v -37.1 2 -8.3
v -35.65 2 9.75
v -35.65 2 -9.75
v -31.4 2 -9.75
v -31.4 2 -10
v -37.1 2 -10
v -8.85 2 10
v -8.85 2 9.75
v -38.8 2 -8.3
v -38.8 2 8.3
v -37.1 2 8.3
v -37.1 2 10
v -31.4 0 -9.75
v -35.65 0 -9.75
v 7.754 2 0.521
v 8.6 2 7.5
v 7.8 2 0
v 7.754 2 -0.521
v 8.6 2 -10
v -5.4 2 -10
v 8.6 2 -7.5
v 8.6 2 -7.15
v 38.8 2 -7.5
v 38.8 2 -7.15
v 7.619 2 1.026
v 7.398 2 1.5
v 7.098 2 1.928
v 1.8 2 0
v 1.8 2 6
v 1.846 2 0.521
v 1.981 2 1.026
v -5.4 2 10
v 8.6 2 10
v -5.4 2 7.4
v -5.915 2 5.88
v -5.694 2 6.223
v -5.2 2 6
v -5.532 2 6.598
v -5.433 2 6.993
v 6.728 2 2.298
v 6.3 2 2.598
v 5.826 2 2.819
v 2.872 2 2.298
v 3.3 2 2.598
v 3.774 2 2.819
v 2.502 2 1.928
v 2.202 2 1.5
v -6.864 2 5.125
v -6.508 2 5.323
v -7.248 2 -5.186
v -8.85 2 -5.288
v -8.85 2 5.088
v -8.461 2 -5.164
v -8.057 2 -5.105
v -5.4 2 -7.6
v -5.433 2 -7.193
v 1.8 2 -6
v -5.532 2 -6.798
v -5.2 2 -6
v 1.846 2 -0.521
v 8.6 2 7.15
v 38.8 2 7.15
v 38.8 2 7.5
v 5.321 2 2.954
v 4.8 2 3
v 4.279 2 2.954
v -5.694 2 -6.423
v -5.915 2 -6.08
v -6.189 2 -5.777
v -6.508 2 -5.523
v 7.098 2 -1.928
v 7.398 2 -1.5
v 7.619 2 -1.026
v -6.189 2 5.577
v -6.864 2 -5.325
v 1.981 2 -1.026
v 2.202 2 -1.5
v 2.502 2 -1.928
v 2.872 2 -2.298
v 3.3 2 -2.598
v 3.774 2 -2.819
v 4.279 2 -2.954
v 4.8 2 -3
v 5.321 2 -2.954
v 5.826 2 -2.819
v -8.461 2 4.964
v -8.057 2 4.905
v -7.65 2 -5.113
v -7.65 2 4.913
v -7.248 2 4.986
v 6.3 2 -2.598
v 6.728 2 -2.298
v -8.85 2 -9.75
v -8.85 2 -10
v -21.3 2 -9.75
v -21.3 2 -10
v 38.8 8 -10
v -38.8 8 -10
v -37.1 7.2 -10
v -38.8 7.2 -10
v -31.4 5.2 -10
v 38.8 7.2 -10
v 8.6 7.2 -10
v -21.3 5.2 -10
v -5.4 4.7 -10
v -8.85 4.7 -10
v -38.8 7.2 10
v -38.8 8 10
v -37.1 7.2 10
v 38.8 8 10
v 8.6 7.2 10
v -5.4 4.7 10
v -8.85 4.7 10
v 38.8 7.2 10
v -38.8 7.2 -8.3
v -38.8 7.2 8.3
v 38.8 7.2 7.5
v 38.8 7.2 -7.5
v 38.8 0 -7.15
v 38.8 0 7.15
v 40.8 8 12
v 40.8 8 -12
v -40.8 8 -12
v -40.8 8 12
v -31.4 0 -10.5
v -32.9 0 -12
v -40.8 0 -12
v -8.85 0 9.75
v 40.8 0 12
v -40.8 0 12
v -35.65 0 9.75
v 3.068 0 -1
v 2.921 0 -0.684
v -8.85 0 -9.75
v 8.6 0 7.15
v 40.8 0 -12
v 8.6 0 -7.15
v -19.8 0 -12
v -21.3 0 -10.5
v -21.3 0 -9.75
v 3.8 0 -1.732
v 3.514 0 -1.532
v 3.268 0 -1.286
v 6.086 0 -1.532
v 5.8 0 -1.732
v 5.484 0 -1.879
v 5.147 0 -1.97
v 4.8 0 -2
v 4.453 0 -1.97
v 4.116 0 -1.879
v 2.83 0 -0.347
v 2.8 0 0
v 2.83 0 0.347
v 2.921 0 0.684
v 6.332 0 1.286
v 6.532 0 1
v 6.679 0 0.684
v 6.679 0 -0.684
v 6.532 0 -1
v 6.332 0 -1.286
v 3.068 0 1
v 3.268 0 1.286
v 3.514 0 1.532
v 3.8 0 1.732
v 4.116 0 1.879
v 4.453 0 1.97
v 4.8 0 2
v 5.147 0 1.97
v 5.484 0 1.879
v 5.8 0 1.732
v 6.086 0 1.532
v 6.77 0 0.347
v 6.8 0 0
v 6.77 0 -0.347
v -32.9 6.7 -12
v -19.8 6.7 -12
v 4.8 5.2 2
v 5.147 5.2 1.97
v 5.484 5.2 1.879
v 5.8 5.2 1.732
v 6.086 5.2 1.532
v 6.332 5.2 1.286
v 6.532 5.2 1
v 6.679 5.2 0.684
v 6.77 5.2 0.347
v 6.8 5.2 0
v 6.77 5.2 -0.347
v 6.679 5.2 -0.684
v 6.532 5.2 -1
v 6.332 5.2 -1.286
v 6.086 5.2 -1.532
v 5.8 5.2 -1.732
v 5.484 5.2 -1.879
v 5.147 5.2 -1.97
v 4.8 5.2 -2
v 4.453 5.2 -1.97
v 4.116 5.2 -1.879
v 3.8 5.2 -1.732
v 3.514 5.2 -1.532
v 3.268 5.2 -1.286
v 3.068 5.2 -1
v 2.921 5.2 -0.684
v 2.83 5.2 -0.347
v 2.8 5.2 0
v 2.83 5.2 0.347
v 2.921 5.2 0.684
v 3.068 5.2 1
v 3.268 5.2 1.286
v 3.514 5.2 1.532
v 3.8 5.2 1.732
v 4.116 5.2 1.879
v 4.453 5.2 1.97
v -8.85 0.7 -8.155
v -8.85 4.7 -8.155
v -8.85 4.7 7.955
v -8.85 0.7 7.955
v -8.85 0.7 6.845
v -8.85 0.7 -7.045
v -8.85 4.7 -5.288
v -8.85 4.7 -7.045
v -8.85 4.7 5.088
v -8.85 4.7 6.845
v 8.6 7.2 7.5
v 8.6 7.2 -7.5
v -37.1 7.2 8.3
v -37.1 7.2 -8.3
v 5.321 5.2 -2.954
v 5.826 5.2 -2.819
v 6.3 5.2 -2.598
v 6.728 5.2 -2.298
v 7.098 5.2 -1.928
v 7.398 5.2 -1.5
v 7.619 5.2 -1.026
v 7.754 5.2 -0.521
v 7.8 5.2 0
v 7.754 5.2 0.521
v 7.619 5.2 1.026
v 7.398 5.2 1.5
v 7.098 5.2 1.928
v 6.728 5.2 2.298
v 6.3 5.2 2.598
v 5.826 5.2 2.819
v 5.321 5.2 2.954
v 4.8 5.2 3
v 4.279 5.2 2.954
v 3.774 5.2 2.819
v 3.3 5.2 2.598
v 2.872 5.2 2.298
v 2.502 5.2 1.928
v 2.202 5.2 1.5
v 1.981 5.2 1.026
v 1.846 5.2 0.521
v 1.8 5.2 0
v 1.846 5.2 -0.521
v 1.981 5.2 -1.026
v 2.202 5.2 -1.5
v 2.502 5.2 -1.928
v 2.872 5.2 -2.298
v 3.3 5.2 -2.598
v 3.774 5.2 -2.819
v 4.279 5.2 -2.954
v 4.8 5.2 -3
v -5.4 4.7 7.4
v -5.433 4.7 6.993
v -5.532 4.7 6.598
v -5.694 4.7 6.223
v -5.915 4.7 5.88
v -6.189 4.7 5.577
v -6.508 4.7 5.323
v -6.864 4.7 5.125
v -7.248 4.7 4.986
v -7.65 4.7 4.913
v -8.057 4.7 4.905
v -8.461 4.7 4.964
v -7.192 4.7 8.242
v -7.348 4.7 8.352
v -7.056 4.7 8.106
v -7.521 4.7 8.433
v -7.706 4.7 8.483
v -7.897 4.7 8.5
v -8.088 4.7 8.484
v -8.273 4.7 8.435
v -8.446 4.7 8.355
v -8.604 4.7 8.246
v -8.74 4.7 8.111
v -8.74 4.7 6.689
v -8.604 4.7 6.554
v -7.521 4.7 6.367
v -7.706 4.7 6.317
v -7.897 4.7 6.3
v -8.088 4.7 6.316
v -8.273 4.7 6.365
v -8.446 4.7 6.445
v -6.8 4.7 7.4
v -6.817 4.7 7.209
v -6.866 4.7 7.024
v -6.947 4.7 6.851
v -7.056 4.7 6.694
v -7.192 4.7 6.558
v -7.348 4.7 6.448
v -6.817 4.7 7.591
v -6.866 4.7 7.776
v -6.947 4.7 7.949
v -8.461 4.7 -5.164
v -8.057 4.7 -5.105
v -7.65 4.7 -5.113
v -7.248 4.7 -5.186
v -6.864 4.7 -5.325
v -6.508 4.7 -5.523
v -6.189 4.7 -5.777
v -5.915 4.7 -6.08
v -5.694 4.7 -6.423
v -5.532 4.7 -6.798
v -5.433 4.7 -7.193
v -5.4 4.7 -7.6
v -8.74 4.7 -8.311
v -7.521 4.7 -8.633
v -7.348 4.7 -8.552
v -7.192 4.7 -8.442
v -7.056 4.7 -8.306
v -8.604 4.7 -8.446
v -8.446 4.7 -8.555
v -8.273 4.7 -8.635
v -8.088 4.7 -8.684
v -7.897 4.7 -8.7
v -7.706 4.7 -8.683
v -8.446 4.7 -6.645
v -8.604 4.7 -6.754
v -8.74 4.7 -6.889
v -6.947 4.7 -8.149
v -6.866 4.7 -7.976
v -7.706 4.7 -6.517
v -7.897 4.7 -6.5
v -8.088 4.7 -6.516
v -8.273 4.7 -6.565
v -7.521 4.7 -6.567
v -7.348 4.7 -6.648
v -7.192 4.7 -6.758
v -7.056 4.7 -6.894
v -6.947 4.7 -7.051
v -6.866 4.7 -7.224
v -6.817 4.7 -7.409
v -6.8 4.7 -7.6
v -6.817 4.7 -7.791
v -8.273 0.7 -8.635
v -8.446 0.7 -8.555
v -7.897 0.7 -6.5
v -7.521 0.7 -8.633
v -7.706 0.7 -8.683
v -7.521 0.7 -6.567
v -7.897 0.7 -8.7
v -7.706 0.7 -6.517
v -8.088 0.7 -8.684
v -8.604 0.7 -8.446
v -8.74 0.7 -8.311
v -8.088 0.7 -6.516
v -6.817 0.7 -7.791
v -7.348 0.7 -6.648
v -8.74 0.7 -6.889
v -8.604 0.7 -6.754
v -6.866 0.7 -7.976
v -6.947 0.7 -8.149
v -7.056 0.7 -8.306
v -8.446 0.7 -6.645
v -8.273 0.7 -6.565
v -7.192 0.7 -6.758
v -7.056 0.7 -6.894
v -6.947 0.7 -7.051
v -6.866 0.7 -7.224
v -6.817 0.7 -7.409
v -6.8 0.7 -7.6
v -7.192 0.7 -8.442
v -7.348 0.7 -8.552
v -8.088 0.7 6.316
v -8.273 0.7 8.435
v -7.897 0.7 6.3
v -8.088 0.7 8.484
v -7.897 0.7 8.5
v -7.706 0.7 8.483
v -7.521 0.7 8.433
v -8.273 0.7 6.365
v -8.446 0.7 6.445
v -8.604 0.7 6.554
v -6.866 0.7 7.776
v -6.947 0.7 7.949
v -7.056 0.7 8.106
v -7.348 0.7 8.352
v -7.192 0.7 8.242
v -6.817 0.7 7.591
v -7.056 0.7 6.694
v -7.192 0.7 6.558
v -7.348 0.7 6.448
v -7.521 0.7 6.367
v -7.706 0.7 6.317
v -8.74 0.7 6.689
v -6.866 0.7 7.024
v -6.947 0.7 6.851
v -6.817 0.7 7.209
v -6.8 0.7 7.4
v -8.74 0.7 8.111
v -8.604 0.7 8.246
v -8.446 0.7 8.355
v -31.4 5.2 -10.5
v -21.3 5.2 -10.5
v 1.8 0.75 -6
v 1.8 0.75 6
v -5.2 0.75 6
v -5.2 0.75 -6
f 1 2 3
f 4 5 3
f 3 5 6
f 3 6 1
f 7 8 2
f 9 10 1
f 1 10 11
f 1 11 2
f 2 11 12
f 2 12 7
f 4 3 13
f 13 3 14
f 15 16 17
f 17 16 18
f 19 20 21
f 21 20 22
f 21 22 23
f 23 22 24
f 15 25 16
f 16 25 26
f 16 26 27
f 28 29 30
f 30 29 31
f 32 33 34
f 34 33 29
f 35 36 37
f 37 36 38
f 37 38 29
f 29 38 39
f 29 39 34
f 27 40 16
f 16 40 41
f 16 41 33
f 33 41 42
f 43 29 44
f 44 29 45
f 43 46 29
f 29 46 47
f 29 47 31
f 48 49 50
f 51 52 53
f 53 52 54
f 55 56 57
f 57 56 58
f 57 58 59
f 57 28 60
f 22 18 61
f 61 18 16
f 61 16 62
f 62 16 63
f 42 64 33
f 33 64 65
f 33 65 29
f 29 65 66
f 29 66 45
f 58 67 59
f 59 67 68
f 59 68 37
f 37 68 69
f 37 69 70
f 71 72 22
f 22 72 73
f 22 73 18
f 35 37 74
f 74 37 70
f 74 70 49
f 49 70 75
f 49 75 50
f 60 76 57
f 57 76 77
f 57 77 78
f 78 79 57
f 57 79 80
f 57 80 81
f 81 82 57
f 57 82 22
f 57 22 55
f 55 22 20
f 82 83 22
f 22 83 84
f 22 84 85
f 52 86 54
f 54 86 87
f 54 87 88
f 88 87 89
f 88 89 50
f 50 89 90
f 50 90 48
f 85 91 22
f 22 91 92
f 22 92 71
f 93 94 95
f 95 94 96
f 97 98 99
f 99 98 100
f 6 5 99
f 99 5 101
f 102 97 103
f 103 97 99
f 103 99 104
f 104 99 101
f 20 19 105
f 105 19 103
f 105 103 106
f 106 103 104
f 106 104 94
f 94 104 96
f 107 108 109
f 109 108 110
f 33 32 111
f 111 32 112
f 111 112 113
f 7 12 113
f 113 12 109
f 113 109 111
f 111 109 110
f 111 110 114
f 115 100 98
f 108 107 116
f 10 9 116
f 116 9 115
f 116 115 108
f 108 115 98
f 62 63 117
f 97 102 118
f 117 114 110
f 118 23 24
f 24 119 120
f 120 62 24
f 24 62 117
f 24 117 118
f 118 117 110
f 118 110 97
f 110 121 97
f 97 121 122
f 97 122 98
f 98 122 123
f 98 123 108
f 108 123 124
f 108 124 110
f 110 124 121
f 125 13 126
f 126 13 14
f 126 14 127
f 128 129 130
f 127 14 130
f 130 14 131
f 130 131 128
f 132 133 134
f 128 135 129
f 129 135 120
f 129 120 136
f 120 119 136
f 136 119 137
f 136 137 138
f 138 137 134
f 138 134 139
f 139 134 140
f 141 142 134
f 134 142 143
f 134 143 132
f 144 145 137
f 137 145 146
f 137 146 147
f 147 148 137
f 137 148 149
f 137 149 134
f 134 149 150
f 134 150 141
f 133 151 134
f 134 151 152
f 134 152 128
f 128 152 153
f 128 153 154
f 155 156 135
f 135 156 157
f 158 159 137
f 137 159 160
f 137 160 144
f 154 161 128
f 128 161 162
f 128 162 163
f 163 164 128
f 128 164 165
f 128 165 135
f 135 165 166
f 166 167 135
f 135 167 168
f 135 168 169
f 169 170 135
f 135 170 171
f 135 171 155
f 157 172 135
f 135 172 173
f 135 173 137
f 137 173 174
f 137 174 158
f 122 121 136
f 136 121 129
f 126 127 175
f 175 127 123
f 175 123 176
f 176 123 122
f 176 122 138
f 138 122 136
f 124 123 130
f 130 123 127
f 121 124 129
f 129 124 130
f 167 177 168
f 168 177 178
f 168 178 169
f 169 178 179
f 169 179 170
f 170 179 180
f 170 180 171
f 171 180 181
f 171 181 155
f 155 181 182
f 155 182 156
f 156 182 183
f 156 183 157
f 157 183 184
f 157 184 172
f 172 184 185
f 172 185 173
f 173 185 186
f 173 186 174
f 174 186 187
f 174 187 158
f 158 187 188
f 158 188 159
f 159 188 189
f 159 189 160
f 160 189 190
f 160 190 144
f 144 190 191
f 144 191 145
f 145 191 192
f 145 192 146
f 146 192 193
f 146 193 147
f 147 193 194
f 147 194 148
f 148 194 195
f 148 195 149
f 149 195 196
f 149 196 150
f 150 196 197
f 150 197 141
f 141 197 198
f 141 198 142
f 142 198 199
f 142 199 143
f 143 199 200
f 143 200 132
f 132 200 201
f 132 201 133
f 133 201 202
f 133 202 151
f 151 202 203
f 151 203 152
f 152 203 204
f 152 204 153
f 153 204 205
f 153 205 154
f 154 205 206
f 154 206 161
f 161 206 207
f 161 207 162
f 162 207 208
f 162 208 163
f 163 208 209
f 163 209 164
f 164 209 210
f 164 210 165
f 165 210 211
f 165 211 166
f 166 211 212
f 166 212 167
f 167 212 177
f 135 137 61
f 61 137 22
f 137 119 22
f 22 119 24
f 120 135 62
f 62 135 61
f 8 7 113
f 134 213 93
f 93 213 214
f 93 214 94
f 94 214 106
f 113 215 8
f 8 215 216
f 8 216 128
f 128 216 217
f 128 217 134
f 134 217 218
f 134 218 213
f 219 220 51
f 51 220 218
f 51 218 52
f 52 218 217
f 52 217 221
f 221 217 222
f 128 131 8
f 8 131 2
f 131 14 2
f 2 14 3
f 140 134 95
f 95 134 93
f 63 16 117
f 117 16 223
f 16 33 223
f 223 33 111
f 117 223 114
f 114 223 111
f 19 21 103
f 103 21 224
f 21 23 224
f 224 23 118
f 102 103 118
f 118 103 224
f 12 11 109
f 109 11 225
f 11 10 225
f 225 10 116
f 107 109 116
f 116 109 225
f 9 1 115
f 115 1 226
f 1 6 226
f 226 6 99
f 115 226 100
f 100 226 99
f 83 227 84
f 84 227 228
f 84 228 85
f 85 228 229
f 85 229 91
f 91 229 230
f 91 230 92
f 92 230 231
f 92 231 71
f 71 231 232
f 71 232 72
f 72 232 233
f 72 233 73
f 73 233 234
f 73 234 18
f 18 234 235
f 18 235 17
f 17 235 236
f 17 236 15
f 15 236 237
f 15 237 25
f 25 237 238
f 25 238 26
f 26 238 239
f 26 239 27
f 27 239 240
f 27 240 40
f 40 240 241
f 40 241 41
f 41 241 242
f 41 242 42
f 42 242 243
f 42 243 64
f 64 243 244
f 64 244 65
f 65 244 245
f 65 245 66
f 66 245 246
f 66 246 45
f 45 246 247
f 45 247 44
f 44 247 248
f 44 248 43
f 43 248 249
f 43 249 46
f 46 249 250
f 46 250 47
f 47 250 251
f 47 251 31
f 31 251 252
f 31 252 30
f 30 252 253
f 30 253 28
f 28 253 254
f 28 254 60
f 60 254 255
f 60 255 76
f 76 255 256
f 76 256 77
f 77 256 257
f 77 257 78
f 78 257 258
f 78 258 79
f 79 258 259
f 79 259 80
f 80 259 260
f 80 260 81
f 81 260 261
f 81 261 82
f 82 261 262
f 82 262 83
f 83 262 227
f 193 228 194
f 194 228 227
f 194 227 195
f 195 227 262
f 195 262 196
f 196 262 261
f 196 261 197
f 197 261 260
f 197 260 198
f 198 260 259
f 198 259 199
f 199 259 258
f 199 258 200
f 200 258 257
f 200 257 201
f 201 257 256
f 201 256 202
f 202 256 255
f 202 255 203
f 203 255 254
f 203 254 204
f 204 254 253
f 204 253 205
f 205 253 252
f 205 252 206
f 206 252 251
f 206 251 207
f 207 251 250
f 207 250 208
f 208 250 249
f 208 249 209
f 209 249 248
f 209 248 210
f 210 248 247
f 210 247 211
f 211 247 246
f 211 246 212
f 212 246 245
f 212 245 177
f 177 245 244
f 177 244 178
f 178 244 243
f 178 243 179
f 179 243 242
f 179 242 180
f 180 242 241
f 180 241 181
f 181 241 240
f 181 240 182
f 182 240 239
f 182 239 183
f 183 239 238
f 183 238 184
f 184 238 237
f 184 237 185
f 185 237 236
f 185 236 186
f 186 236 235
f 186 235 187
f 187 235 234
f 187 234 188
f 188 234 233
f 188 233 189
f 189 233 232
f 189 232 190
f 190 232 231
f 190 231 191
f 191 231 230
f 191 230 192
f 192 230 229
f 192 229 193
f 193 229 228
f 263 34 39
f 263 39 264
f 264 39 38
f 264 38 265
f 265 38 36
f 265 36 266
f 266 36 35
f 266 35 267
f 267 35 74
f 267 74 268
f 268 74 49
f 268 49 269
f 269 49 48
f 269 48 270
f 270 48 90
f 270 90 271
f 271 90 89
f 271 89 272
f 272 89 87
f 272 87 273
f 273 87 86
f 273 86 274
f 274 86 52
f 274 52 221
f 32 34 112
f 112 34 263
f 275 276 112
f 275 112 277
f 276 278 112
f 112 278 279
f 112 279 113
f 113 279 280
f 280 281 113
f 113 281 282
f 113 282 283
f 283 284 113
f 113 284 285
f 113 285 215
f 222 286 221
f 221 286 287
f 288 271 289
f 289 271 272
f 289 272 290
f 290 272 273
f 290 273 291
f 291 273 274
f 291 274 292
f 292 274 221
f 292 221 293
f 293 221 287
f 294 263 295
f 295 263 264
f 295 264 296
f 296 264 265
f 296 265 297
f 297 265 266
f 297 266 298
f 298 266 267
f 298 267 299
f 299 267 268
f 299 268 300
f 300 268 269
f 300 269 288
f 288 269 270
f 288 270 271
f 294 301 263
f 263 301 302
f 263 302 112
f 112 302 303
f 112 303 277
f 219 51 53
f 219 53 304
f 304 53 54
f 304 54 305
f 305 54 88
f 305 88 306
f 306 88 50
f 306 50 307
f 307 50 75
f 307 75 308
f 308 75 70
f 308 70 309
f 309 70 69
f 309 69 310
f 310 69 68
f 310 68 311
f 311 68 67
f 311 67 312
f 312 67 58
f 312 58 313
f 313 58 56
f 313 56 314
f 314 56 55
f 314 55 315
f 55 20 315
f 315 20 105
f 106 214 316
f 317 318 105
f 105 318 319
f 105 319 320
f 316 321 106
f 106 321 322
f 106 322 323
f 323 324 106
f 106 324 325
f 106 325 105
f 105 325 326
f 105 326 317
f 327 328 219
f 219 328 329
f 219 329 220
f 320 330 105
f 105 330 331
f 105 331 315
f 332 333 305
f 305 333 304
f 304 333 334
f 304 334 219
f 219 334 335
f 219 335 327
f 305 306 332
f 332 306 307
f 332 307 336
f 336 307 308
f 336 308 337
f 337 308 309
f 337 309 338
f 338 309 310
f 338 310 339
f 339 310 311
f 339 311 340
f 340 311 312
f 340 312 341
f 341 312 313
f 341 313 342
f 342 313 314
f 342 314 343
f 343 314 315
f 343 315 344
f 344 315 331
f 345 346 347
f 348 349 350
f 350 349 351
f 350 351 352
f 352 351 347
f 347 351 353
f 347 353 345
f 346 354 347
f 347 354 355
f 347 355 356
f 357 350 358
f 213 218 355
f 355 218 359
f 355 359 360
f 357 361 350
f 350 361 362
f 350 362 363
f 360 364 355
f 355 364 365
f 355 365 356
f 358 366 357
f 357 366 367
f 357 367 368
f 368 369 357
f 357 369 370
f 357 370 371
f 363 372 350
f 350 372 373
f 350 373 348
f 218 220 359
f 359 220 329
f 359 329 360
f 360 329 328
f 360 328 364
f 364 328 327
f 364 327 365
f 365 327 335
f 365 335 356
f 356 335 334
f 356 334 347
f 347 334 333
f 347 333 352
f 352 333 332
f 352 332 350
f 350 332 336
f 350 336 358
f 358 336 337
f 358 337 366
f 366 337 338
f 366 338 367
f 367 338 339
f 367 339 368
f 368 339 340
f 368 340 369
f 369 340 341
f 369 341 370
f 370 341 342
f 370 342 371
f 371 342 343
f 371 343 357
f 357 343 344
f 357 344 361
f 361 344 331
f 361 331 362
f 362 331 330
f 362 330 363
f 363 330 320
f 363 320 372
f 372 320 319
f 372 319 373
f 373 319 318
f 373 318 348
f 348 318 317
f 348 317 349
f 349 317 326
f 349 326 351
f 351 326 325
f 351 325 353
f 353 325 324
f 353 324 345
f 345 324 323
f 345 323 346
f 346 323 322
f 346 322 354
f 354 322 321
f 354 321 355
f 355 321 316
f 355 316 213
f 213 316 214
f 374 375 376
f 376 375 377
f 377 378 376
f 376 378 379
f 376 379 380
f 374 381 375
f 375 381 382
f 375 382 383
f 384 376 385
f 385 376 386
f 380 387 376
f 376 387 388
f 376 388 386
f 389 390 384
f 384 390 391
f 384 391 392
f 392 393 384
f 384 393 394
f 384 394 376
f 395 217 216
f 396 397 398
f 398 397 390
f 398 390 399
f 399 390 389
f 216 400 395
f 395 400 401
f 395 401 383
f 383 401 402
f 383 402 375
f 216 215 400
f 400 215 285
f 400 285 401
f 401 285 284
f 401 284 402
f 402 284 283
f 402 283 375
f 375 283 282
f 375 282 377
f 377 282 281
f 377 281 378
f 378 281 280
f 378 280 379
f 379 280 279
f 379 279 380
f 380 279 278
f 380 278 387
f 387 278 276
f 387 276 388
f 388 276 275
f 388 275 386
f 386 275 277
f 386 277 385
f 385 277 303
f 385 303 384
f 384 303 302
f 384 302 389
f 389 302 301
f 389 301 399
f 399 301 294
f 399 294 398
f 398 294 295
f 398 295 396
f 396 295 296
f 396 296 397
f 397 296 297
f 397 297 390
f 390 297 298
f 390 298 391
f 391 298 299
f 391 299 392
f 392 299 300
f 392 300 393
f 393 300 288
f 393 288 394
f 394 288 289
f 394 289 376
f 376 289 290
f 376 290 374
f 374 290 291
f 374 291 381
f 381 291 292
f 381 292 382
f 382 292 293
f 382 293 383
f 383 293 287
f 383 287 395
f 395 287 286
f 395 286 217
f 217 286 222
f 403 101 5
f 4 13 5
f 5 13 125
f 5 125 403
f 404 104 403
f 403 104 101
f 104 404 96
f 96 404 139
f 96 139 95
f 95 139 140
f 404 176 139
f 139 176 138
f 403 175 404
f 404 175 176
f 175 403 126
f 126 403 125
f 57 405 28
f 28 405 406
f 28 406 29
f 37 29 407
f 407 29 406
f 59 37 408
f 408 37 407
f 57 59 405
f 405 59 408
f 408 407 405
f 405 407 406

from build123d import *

# Parameters (mm, degrees)
SKETCH2_W           = 81.6
SKETCH2_H           = 24
SKETCH2_W_2         = 77.6
SKETCH2_H_2         = 20
BOSS_EXTRUDE1_DEPTH = 8
SKETCH3_W           = 77.6
SKETCH3_H           = 20
BOSS_EXTRUDE2_DEPTH = 2
SKETCH4_R           = 2
SKETCH4_W           = 26.8
SKETCH4_H           = 19.5
SKETCH4_W_2         = 30.2
SKETCH4_H_2         = 14.3
CUT_EXTRUDE1_DEPTH  = 9
SKETCH6_W           = 30.2
SKETCH6_H           = 2.5
SKETCH6_W_2         = 1.7
SKETCH6_H_2         = 1.7
BOSS_EXTRUDE5_DEPTH = 5.2
SKETCH11_R          = 3
SKETCH11_R_2        = 2
BOSS_EXTRUDE6_DEPTH = 3.2
BOSS_EXTRUDE7_DEPTH = 2.7
SKETCH13_R          = 1.1
CUT_EXTRUDE2_DEPTH  = 4
CUT_EXTRUDE3_REACH  = 26
SKETCH15_W          = 10.1
SKETCH15_H          = 5.2
CHAMFER1_SIZE       = 1.5
SKETCH16_W          = 7
SKETCH16_H          = 12
CUT_EXTRUDE4_DEPTH  = 1.25


with BuildPart() as part:
    # Sketch2 → Boss-Extrude1 (new body)
    with BuildSketch(Plane(origin=(0, 0, 0), x_dir=(1, 0, 0), z_dir=(0, 1, 0))):
        Rectangle(SKETCH2_W, SKETCH2_H)
        Rectangle(SKETCH2_W_2, SKETCH2_H_2, mode=Mode.SUBTRACT)
    extrude(amount=BOSS_EXTRUDE1_DEPTH)

    # Sketch3 → Boss-Extrude2 (add)
    with BuildSketch(Plane(origin=(0, 0, 0), x_dir=(1, 0, 0), z_dir=(0, 1, 0))):
        Rectangle(SKETCH3_W, SKETCH3_H)
    extrude(amount=BOSS_EXTRUDE2_DEPTH)

    # Sketch4 → Cut-Extrude1 (cut, through all)
    with BuildSketch(Plane(origin=(0, 8, 0), x_dir=(1, 0, 0), z_dir=(0, 1, 0))):
        with Locations((4.8, 0)):
            Circle(SKETCH4_R)
        with Locations((-22.25, 0)):
            Rectangle(SKETCH4_W, SKETCH4_H)
        with Locations((23.7, 0)):
            Rectangle(SKETCH4_W_2, SKETCH4_H_2)
    extrude(amount=-CUT_EXTRUDE1_DEPTH, mode=Mode.SUBTRACT)

    # Sketch6 → Boss-Extrude5 (add)
    with BuildSketch(Plane(origin=(0, 2, 0), x_dir=(-1, 0, 0), z_dir=(0, 1, 0))):
        with Locations((-23.7, 8.75)):
            Rectangle(SKETCH6_W, SKETCH6_H)
        with Locations((-23.7, -8.75)):
            Rectangle(SKETCH6_W, SKETCH6_H)
        with Locations((37.95, 9.15)):
            Rectangle(SKETCH6_W_2, SKETCH6_H_2)
        with Locations((37.95, -9.15)):
            Rectangle(SKETCH6_W_2, SKETCH6_H_2)
    extrude(amount=BOSS_EXTRUDE5_DEPTH)

    # Sketch11 → Boss-Extrude6 (add)
    with BuildSketch(Plane(origin=(0, 2, 0), x_dir=(1, 0, 0), z_dir=(0, 1, 0))):
        with Locations((4.8, 0)):
            Circle(SKETCH11_R)
        with Locations((4.8, 0)):
            Circle(SKETCH11_R_2, mode=Mode.SUBTRACT)
    extrude(amount=BOSS_EXTRUDE6_DEPTH)

    # Sketch8 → Boss-Extrude7 (add)
    with BuildSketch(Plane(origin=(0, 2, 0), x_dir=(1, 0, 0), z_dir=(0, 1, 0))):
        with BuildLine():
            Line((-8.85, -9.75), (-8.85, -5.087533784))
            ThreePointArc((-8.85, -5.087533784), (-6.508058909, -5.323344034), (-5.4, -7.4))
            Line((-5.4, -7.4), (-5.4, -10))
            Line((-5.4, -10), (-8.85, -10))
            Line((-8.85, -10), (-8.85, -9.75))
        make_face()
        with BuildLine():
            Line((-5.4, 10), (-8.85, 10))
            Line((-8.85, 10), (-8.85, 9.75))
            Line((-8.85, 9.75), (-8.85, 5.287533784))
            ThreePointArc((-8.85, 5.287533784), (-6.508058909, 5.523344034), (-5.4, 7.6))
            Line((-5.4, 7.6), (-5.4, 10))
        make_face()
    extrude(amount=BOSS_EXTRUDE7_DEPTH)

    # Sketch13 → Cut-Extrude2 (cut)
    with BuildSketch(Plane(origin=(0, 4.7, 0), x_dir=(1, 0, 0), z_dir=(0, 1, 0))):
        with Locations((-7.9, 7.6)):
            Circle(SKETCH13_R)
        with Locations((-7.9, -7.4)):
            Circle(SKETCH13_R)
    extrude(amount=-CUT_EXTRUDE2_DEPTH, mode=Mode.SUBTRACT)

    # Sketch15 → Cut-Extrude3 (cut, up to next)
    with BuildSketch(Plane(origin=(0, 0, -12), x_dir=(-1, 0, 0), z_dir=(0, 0, -1)), mode=Mode.PRIVATE) as cut_extrude3_sk1:
        with Locations((26.35, 2.6)):
            Rectangle(SKETCH15_W, SKETCH15_H)
    cut_extrude3_tool1 = extrude(cut_extrude3_sk1.sketch, amount=-CUT_EXTRUDE3_REACH, mode=Mode.PRIVATE) & part.part
    add(cut_extrude3_tool1.solids().sort_by_distance((-26.35, 2.6, -12))[0], mode=Mode.SUBTRACT)

    # Chamfer1
    chamfer1_edges = [part.edges().sort_by_distance(p)[0] for p in [
        (-21.3, 2.6, -12),
        (-31.4, 2.6, -12),
        (-26.35, 5.2, -12),
    ]]
    chamfer(chamfer1_edges, length=CHAMFER1_SIZE)

    # Sketch16 → Cut-Extrude4 (cut)
    with BuildSketch(Plane(origin=(0, 2, 0), x_dir=(1, 0, 0), z_dir=(0, 1, 0))):
        with Locations((-1.7, 0)):
            Rectangle(SKETCH16_W, SKETCH16_H)
    extrude(amount=-CUT_EXTRUDE4_DEPTH, mode=Mode.SUBTRACT)


solid = part.part
